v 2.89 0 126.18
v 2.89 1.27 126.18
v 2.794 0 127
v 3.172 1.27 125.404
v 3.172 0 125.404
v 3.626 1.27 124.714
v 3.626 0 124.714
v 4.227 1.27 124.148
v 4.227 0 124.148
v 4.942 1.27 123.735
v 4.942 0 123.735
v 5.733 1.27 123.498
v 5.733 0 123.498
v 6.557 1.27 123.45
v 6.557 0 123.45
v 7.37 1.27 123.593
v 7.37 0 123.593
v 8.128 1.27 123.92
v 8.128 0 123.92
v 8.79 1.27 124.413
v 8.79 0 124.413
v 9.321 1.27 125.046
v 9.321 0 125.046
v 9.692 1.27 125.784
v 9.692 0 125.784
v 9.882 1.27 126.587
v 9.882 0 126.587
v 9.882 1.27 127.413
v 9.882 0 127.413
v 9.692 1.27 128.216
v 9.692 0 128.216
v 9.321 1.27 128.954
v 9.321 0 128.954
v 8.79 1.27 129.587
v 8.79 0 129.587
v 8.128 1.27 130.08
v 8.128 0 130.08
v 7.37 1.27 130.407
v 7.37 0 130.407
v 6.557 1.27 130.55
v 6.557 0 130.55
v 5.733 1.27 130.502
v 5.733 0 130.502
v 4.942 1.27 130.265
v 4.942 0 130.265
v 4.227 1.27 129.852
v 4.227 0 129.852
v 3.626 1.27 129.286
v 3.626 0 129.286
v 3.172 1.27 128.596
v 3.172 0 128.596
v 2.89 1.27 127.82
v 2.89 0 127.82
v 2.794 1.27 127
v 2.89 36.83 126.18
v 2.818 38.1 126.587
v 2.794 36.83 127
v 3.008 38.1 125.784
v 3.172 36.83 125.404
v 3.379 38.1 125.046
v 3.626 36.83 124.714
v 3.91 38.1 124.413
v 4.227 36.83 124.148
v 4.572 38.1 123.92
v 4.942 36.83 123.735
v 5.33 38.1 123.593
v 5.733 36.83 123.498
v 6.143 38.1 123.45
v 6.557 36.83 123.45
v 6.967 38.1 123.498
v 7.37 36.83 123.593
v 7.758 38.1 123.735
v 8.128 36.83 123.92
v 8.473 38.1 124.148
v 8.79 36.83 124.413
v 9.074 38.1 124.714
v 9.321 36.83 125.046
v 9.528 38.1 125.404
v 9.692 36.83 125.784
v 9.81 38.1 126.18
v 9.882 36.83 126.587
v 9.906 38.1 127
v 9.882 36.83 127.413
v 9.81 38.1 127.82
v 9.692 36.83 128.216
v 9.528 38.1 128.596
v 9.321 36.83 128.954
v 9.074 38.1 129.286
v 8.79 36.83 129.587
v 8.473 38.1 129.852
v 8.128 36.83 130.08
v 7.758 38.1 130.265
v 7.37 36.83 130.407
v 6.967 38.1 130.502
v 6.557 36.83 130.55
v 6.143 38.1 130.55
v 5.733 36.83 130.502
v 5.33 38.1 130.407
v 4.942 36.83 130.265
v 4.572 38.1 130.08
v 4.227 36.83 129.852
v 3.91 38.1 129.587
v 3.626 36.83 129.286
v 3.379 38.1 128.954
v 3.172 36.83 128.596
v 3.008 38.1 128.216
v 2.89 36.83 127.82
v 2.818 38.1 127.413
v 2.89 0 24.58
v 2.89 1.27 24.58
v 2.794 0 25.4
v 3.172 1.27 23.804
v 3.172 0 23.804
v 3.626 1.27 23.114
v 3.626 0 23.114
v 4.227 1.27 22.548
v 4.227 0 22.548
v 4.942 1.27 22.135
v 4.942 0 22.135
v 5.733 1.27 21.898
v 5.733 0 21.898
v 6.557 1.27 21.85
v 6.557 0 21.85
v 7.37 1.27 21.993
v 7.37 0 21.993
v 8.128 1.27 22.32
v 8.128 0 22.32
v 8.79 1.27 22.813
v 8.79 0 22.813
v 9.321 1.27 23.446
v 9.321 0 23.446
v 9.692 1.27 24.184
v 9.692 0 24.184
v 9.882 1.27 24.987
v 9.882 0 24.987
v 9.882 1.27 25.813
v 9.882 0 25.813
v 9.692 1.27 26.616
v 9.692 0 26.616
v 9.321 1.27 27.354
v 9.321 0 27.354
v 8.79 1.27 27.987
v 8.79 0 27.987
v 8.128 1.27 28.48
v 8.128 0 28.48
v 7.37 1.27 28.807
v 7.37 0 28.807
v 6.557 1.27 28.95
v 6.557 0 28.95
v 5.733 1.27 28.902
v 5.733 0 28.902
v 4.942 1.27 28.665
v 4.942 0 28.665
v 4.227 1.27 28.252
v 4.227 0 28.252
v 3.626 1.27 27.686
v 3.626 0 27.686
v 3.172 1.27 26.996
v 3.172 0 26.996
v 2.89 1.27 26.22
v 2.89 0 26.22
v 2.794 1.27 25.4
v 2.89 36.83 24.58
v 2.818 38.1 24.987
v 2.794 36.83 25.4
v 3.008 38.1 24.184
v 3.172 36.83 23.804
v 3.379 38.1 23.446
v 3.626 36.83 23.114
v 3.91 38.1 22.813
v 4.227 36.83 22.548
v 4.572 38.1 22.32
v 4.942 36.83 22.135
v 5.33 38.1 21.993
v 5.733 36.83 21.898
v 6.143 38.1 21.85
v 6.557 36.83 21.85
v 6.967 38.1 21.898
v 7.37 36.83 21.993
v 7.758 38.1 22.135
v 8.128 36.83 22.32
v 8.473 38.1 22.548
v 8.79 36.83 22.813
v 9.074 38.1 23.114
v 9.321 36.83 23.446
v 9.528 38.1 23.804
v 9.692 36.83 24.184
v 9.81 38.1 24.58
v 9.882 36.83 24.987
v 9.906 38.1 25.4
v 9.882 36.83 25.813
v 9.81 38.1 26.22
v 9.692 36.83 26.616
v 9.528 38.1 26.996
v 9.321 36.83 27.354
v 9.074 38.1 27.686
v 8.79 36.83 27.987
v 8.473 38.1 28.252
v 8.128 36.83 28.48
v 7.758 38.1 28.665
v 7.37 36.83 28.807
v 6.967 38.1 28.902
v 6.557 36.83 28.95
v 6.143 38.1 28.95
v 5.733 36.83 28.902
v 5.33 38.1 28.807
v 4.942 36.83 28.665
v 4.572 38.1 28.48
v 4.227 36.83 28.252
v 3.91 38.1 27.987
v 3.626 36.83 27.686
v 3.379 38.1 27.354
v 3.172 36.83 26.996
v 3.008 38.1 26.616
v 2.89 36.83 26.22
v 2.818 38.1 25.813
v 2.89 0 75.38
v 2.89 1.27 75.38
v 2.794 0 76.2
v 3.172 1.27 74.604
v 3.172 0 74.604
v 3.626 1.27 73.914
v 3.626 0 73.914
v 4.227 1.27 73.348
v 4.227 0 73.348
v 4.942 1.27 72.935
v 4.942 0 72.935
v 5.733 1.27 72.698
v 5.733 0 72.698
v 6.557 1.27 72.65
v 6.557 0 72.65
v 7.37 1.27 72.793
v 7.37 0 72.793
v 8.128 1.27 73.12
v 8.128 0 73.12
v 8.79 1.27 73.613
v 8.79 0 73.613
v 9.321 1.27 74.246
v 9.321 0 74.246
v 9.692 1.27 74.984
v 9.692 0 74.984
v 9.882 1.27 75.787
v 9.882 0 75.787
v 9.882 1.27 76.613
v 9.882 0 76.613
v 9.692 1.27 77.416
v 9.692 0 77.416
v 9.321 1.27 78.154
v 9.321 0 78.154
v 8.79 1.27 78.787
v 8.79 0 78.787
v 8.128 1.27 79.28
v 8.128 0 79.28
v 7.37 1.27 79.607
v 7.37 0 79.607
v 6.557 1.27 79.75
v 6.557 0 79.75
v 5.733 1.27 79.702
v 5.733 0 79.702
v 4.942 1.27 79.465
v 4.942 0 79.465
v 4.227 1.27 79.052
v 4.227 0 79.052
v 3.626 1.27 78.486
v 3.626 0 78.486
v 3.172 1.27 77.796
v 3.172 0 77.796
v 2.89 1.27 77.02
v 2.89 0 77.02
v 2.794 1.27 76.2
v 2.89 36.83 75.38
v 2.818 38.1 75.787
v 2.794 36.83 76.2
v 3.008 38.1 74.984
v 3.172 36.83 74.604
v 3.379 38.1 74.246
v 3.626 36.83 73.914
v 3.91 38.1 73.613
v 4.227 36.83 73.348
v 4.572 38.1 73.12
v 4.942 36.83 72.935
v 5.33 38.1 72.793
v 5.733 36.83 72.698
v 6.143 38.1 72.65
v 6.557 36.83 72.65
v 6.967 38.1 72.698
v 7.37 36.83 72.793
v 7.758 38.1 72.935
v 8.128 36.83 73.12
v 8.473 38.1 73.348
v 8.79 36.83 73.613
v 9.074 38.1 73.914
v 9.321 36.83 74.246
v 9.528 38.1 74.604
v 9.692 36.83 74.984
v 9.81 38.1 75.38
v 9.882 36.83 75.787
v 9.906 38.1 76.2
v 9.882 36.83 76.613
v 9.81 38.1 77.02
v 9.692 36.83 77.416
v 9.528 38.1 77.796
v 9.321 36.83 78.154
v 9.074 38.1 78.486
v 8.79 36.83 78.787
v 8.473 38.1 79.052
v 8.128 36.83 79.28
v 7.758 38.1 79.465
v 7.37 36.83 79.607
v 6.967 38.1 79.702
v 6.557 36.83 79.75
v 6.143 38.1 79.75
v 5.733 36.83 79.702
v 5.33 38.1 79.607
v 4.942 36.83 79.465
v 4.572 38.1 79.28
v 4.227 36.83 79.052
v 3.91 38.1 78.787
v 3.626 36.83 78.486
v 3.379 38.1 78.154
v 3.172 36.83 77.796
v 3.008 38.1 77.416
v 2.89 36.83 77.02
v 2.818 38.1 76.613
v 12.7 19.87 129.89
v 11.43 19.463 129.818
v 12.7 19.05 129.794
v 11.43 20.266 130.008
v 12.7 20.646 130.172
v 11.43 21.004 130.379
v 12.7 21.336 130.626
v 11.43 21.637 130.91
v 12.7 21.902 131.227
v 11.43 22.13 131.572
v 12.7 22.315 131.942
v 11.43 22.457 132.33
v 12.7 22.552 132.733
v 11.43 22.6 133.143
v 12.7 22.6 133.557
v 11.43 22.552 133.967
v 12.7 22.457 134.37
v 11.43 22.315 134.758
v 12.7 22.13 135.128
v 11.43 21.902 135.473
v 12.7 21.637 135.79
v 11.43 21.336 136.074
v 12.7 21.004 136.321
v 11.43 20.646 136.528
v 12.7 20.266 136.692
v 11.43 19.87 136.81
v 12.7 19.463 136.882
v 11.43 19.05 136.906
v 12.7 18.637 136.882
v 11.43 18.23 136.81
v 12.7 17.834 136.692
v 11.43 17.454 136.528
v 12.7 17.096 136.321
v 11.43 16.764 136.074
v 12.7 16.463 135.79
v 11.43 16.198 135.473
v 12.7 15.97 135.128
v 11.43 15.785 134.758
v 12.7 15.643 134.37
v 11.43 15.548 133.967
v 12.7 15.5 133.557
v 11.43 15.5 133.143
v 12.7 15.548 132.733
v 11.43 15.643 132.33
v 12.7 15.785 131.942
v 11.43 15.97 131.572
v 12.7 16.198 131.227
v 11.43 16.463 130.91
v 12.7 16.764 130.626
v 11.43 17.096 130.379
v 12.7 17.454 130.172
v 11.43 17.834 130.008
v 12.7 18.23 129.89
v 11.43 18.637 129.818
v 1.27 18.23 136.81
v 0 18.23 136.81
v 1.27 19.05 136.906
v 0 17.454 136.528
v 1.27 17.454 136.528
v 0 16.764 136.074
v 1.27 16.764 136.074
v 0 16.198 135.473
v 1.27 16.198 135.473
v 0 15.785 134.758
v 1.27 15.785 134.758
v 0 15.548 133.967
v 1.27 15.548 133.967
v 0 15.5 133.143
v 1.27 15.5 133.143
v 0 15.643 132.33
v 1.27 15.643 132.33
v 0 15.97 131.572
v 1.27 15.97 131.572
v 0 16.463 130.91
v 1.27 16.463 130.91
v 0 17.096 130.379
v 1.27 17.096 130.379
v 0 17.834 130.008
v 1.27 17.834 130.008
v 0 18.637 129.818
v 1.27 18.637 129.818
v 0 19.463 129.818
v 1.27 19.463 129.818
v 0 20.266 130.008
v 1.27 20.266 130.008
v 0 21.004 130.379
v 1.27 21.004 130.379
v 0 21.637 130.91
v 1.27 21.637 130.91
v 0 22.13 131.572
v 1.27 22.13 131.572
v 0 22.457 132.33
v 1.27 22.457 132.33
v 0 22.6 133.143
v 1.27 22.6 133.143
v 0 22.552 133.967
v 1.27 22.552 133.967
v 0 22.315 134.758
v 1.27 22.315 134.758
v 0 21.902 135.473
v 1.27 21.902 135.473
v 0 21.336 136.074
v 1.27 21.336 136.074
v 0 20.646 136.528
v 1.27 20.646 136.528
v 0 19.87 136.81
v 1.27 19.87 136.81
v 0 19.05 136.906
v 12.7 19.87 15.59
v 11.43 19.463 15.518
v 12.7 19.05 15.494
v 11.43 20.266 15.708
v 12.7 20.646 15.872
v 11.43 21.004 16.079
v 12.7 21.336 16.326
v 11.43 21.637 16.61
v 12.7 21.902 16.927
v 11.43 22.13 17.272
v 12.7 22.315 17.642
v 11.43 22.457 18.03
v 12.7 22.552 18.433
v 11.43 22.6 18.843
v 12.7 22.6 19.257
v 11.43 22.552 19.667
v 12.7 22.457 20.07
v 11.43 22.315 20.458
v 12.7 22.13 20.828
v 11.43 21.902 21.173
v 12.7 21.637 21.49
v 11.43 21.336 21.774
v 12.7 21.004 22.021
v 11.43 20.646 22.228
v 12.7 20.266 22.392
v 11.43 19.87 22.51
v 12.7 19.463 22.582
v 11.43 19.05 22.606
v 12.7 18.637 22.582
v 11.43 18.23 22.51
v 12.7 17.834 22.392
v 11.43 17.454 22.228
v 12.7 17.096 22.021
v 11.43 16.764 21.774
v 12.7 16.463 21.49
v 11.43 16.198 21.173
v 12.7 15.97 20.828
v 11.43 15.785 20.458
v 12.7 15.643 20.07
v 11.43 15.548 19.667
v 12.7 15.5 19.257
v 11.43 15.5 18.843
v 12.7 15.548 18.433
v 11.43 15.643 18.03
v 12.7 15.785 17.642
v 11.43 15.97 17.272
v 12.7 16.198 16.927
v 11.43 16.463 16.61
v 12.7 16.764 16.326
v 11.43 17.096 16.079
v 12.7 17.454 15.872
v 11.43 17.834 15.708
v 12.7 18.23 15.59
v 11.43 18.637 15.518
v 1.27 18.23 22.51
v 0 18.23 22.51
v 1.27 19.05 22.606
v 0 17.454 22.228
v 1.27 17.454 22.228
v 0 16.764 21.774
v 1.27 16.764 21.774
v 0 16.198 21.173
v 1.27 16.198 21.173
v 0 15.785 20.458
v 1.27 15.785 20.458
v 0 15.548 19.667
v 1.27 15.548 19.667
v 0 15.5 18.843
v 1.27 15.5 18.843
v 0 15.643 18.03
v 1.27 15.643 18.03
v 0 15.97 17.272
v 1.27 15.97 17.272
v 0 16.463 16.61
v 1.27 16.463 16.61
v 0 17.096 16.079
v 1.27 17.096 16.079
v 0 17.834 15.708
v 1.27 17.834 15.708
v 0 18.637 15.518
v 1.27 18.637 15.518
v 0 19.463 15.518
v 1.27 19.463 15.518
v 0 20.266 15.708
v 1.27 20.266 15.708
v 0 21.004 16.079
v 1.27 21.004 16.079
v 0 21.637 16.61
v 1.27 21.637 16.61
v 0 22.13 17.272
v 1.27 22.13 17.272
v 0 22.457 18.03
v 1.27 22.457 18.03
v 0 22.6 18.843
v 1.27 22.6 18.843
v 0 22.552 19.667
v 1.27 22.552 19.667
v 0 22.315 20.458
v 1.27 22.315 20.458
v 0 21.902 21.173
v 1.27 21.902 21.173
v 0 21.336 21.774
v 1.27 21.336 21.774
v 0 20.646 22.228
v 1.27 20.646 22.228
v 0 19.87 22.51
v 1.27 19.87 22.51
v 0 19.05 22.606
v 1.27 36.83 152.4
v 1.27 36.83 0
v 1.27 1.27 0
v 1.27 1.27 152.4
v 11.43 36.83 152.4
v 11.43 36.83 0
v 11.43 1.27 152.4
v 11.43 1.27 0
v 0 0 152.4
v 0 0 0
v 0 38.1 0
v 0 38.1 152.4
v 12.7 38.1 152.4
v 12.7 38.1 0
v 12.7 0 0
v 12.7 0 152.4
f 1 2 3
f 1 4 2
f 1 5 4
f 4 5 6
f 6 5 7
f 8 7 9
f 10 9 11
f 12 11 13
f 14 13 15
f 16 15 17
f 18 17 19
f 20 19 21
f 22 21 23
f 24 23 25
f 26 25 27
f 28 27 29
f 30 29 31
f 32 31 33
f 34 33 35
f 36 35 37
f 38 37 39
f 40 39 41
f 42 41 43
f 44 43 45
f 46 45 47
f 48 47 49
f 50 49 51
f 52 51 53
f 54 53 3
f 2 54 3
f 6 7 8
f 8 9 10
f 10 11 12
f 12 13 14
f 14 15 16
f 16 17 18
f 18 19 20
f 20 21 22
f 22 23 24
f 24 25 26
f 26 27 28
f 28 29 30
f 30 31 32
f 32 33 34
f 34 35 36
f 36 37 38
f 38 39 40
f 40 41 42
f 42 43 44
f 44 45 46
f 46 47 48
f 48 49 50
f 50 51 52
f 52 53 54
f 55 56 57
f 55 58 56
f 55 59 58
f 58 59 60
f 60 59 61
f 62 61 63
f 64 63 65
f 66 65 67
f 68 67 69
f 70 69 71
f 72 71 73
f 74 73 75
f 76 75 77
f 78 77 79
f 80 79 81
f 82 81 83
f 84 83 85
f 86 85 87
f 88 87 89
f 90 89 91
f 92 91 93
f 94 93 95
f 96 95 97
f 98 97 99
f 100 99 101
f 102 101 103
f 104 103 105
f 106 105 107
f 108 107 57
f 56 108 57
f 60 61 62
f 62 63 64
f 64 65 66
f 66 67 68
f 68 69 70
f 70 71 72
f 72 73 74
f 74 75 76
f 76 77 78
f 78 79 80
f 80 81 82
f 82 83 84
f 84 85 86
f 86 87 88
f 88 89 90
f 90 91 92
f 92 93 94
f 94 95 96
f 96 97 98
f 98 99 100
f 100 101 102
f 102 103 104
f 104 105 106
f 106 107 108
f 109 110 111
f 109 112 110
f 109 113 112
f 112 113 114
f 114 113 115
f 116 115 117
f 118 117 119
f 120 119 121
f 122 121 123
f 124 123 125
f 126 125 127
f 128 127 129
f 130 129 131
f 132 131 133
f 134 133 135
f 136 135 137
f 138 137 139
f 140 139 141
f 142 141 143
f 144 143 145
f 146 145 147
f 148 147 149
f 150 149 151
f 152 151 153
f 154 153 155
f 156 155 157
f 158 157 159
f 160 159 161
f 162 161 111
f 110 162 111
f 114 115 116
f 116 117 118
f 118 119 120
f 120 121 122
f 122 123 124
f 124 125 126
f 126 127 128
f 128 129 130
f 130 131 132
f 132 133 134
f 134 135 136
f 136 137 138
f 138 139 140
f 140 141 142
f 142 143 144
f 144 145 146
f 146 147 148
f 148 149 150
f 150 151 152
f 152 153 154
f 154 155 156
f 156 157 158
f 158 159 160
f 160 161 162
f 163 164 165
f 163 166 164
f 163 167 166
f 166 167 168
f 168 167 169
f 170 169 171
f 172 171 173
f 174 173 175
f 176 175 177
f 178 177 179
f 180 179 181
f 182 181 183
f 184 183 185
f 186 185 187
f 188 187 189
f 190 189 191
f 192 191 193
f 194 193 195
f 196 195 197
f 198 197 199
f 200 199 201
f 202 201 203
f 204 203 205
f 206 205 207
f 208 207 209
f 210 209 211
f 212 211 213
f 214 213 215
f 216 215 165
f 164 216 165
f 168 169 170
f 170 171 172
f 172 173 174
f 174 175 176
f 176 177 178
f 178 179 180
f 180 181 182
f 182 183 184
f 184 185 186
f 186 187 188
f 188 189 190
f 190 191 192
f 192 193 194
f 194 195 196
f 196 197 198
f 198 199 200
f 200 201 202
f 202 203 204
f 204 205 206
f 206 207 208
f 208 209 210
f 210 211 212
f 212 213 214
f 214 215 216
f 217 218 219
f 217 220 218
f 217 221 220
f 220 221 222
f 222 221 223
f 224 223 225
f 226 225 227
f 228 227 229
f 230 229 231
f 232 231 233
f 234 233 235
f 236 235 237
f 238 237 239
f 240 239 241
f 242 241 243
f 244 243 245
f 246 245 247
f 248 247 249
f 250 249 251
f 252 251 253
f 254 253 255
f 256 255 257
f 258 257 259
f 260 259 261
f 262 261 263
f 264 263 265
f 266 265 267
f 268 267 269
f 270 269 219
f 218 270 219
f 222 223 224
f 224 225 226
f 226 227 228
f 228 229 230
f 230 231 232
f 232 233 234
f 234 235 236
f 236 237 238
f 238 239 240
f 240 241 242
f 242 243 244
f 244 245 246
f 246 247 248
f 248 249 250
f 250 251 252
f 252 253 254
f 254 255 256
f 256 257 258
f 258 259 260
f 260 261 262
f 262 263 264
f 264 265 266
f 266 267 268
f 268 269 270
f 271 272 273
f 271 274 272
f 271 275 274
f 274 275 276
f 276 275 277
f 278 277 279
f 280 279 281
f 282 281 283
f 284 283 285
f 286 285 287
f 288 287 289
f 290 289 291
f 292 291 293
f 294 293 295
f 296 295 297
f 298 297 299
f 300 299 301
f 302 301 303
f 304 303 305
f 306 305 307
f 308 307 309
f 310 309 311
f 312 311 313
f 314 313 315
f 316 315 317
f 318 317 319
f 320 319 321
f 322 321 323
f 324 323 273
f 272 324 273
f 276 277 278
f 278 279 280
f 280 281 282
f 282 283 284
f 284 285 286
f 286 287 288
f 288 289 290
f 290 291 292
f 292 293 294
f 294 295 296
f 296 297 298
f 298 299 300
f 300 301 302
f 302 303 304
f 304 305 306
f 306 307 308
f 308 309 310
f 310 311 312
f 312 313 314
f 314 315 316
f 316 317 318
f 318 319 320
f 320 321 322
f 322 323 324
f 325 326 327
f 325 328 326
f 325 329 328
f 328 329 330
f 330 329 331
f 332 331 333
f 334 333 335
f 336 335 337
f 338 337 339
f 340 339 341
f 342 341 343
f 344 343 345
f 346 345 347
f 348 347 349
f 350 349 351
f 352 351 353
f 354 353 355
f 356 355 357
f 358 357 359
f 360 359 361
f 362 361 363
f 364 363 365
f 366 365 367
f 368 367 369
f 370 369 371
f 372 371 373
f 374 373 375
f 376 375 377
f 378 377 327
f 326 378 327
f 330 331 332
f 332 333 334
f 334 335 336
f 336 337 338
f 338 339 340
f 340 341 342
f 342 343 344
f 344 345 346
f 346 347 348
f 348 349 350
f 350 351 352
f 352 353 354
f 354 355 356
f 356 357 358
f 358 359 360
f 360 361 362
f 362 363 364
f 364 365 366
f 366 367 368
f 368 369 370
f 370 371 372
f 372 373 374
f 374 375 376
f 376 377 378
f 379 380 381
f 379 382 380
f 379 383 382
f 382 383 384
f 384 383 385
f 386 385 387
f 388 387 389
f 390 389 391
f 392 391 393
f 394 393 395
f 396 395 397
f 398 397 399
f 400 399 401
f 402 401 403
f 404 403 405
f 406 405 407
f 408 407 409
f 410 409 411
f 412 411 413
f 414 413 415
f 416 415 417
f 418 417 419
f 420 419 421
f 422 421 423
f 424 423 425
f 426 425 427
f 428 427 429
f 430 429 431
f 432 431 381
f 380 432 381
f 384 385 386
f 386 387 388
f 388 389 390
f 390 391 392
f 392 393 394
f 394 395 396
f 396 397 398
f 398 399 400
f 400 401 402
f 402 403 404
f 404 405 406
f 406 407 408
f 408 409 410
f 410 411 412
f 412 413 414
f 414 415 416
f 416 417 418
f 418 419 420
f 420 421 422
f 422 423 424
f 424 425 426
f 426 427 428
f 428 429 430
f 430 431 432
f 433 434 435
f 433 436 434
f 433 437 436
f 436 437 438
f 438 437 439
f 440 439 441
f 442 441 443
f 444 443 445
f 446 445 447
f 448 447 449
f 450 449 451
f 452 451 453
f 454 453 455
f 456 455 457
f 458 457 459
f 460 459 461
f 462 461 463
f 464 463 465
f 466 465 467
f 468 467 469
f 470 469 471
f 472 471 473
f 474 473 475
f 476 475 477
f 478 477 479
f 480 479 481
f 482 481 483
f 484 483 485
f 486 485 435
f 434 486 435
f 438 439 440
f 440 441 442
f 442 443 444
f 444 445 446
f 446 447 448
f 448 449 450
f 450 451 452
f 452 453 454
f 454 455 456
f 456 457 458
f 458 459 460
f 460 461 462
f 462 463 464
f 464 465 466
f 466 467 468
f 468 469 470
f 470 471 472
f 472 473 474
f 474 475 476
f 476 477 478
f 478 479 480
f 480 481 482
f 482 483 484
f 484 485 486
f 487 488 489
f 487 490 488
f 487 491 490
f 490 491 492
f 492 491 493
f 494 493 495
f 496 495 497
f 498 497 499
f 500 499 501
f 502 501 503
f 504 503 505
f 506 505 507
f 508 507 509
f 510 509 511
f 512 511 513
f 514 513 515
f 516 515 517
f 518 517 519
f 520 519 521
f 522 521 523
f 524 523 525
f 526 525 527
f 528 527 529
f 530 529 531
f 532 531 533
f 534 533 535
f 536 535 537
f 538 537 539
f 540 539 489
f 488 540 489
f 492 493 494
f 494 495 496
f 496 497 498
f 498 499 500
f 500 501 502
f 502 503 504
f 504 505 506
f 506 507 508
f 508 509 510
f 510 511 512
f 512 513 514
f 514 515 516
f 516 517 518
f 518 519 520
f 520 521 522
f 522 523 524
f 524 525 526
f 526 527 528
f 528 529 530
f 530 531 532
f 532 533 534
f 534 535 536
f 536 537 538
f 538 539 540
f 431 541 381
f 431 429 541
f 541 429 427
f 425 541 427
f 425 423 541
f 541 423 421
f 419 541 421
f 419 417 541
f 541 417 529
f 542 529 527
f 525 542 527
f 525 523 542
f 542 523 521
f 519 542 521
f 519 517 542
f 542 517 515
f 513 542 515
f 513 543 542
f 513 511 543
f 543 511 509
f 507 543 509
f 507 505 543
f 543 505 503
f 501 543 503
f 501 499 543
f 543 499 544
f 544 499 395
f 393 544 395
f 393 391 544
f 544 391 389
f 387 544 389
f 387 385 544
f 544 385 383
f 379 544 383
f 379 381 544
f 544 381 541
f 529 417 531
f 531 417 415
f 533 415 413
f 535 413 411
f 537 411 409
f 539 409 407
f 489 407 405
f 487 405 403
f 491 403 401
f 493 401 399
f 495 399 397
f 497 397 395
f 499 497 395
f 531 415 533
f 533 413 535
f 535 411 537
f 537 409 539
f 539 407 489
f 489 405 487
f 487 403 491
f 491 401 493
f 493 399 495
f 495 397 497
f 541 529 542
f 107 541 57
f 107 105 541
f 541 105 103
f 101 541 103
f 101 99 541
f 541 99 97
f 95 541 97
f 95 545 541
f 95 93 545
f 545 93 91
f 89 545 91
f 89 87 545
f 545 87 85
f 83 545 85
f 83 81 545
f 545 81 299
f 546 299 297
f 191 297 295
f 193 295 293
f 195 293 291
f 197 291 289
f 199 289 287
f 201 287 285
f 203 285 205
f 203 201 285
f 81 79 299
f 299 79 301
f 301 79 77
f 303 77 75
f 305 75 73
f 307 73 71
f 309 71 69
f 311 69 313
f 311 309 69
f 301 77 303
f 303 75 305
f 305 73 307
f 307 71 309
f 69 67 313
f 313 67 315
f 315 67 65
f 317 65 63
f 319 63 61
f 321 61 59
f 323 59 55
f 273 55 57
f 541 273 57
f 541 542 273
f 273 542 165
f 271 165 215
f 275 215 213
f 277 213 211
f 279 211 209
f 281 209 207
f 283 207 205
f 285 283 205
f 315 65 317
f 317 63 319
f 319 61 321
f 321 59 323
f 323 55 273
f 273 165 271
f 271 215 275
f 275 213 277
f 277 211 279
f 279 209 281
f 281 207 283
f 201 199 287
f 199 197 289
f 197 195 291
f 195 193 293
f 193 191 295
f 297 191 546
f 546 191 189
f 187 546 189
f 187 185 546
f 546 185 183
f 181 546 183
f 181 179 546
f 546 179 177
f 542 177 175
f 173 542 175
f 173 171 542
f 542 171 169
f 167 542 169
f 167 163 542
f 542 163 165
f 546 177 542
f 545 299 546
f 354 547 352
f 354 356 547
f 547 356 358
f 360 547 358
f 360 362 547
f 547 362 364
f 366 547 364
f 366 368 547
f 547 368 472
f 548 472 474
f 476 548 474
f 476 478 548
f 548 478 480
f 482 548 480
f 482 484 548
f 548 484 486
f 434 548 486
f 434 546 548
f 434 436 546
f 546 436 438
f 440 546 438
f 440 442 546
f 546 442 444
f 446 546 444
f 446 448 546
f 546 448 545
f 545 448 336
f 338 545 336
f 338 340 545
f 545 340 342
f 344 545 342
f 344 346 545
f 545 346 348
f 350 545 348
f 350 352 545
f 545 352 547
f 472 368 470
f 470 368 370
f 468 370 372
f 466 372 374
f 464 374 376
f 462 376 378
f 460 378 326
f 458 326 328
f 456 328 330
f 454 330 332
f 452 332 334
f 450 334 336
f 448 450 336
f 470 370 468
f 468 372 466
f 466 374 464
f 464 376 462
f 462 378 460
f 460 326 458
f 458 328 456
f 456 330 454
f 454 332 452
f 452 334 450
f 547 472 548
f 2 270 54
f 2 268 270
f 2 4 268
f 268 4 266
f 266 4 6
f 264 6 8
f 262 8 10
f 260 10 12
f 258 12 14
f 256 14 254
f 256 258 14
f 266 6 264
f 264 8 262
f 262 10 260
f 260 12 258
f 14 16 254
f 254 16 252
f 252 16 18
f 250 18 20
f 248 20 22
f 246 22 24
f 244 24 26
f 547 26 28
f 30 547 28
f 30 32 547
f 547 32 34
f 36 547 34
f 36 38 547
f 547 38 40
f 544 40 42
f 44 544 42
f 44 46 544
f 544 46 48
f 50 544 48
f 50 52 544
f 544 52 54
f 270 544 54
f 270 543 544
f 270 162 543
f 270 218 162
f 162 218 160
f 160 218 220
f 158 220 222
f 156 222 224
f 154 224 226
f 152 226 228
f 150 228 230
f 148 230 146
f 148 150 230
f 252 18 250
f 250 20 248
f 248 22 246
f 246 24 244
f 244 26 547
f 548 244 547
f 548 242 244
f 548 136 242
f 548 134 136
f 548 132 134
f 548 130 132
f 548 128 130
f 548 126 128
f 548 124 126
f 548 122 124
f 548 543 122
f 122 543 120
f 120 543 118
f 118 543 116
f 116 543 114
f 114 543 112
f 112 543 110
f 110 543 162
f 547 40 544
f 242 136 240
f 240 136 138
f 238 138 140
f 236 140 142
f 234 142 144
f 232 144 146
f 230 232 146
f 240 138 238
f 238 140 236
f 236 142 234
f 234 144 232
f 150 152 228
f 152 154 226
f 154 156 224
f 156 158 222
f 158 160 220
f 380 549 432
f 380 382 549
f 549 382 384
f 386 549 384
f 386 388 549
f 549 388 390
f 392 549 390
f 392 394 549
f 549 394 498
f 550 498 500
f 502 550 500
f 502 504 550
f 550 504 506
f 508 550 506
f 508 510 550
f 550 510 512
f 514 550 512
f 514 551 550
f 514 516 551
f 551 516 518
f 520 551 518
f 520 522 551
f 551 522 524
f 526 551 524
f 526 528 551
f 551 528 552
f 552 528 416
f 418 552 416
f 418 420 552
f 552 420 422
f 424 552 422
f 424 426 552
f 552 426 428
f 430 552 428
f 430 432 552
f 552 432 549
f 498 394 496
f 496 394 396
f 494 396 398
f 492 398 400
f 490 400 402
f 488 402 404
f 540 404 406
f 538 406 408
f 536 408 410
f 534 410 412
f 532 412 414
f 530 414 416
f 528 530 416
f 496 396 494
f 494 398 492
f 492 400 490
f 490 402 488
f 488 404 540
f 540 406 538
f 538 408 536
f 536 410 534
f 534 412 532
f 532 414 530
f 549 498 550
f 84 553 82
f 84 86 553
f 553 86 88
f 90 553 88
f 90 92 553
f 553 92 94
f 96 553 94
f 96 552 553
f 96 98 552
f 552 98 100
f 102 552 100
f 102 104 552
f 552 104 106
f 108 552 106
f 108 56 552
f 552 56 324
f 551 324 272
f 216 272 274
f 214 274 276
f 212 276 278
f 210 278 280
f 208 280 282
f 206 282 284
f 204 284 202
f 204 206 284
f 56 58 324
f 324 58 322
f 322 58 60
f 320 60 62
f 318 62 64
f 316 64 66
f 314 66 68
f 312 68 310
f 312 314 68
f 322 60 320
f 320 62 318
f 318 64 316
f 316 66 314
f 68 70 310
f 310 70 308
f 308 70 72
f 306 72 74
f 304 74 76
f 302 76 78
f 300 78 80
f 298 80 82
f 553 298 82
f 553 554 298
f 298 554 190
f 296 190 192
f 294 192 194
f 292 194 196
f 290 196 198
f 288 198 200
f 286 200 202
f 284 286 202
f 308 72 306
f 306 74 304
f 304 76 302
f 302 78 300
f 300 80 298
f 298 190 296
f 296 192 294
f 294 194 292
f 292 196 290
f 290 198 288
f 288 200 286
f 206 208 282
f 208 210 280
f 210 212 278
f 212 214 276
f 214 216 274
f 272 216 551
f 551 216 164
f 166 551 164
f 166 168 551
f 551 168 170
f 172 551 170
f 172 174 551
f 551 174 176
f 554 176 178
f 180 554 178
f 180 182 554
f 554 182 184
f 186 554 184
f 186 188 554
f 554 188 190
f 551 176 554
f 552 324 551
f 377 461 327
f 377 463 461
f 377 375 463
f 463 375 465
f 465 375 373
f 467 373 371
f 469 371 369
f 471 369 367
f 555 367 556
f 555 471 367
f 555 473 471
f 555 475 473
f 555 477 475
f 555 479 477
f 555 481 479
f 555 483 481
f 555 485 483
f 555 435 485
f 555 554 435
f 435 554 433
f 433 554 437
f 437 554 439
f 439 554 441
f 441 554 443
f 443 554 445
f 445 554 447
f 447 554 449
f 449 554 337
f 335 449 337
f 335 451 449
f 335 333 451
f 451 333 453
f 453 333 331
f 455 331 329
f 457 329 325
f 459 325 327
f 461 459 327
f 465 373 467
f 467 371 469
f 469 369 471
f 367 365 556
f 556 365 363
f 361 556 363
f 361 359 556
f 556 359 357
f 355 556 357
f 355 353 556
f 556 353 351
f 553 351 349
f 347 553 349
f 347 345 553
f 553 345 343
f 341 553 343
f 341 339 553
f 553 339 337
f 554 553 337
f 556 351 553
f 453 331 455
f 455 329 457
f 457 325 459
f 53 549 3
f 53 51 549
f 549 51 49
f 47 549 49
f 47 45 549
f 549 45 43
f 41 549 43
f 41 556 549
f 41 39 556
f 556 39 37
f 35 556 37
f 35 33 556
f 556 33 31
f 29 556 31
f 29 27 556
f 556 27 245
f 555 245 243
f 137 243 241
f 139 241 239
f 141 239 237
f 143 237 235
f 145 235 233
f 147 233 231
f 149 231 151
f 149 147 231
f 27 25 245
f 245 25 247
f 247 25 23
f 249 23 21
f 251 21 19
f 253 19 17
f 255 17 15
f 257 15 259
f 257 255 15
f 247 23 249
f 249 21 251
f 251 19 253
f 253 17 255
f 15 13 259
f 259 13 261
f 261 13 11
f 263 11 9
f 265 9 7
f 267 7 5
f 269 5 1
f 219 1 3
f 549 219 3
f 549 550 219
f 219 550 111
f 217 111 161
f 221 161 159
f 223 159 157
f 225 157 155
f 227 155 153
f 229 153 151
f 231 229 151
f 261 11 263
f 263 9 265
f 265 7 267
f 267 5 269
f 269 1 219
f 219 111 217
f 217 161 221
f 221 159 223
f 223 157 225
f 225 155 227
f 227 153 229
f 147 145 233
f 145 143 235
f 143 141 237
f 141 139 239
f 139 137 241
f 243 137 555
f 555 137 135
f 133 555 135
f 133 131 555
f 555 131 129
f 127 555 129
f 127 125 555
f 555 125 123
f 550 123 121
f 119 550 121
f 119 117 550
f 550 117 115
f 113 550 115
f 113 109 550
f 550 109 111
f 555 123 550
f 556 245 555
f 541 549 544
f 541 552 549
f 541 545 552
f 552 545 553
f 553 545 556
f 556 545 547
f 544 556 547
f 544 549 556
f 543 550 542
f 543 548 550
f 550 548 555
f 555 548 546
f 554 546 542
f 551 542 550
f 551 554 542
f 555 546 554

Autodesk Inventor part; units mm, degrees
ref_plane "YZ Plane" through (0, 0, 0) normal (1, 0, 0) x (0, 1, 0)
ref_plane "XZ Plane" through (0, 0, 0) normal (0, 1, 0) x (-1, 0, 0)
ref_plane "XY Plane" through (0, 0, 0) normal (0, 0, 1) x (1, 0, 0)
sketch "Sketch1" plane through (0, 0, 0) normal (0, 0, 1) x (1, 0, 0)
  line L0 (0, 0) -> (12.7, 0)
  line L1 (12.7, 0) -> (12.7, 38.1)
  line L2 (12.7, 38.1) -> (0, 38.1)
  line L3 (0, 38.1) -> (0, 0)
  dimension "d0" = 38.1
  dimension "d1" = 12.7
extrude "Extrusion1" add sketch "Sketch1" along normal blind 152.4
shell "Shell1" thickness 1.27 removed faces 2 at (4.2333, 25.4, 0) at (4.2333, 25.4, 152.4)
sketch "Sketch2" plane through (12.7, 0, 0) normal (1, 0, 0) x (0, 0, -1)
  line L0 (0, 0) -> (0, 38.1) projected
  line L1 (0, 38.1) -> (-152.4, 38.1) projected
  line L2 (-152.4, 0) -> (-152.4, 38.1) projected
  line L3 (0, 0) -> (-152.4, 0) projected
  line L4 (-162.6393, 19.05) -> (14.976, 19.05) construction
  point P0 (-133.35, 19.05)
  point P1 (-19.05, 19.05)
  dimension "d5" = 19.05
  dimension "d6" = 19.05
  dimension "d9" = 19.05
hole "Hole1" at (12.7, 19.05, 133.35) at (12.7, 19.05, 19.05) direction (-1, 0, 0) diameter 7.112 end through all
sketch "Sketch3" plane through (0, 38.1, 0) normal (0, 1, 0) x (1, 0, 0)
  line L0 (12.7, 0) -> (0, 0) projected
  line L1 (0, 0) -> (0, -152.4) projected
  line L2 (12.7, -152.4) -> (0, -152.4) projected
  line L3 (12.7, 0) -> (12.7, -152.4) projected
  line L4 (6.35, 17.6784) -> (6.35, -171.0582) construction
  point P0 (0, 0)
  point P1 (6.35, -25.4)
  point P2 (6.35, -127)
  point P3 (6.35, -76.2)
  dimension "d17" = 6.35
  dimension "d18" = 25.4
  dimension "d19" = 25.4
  dimension "d20" = 76.2
hole "Hole2" at (6.35, 38.1, 25.4) at (6.35, 38.1, 127) at (6.35, 38.1, 76.2) direction (0, -1, 0) diameter 7.112 end through all
properties part number "090000-1"
